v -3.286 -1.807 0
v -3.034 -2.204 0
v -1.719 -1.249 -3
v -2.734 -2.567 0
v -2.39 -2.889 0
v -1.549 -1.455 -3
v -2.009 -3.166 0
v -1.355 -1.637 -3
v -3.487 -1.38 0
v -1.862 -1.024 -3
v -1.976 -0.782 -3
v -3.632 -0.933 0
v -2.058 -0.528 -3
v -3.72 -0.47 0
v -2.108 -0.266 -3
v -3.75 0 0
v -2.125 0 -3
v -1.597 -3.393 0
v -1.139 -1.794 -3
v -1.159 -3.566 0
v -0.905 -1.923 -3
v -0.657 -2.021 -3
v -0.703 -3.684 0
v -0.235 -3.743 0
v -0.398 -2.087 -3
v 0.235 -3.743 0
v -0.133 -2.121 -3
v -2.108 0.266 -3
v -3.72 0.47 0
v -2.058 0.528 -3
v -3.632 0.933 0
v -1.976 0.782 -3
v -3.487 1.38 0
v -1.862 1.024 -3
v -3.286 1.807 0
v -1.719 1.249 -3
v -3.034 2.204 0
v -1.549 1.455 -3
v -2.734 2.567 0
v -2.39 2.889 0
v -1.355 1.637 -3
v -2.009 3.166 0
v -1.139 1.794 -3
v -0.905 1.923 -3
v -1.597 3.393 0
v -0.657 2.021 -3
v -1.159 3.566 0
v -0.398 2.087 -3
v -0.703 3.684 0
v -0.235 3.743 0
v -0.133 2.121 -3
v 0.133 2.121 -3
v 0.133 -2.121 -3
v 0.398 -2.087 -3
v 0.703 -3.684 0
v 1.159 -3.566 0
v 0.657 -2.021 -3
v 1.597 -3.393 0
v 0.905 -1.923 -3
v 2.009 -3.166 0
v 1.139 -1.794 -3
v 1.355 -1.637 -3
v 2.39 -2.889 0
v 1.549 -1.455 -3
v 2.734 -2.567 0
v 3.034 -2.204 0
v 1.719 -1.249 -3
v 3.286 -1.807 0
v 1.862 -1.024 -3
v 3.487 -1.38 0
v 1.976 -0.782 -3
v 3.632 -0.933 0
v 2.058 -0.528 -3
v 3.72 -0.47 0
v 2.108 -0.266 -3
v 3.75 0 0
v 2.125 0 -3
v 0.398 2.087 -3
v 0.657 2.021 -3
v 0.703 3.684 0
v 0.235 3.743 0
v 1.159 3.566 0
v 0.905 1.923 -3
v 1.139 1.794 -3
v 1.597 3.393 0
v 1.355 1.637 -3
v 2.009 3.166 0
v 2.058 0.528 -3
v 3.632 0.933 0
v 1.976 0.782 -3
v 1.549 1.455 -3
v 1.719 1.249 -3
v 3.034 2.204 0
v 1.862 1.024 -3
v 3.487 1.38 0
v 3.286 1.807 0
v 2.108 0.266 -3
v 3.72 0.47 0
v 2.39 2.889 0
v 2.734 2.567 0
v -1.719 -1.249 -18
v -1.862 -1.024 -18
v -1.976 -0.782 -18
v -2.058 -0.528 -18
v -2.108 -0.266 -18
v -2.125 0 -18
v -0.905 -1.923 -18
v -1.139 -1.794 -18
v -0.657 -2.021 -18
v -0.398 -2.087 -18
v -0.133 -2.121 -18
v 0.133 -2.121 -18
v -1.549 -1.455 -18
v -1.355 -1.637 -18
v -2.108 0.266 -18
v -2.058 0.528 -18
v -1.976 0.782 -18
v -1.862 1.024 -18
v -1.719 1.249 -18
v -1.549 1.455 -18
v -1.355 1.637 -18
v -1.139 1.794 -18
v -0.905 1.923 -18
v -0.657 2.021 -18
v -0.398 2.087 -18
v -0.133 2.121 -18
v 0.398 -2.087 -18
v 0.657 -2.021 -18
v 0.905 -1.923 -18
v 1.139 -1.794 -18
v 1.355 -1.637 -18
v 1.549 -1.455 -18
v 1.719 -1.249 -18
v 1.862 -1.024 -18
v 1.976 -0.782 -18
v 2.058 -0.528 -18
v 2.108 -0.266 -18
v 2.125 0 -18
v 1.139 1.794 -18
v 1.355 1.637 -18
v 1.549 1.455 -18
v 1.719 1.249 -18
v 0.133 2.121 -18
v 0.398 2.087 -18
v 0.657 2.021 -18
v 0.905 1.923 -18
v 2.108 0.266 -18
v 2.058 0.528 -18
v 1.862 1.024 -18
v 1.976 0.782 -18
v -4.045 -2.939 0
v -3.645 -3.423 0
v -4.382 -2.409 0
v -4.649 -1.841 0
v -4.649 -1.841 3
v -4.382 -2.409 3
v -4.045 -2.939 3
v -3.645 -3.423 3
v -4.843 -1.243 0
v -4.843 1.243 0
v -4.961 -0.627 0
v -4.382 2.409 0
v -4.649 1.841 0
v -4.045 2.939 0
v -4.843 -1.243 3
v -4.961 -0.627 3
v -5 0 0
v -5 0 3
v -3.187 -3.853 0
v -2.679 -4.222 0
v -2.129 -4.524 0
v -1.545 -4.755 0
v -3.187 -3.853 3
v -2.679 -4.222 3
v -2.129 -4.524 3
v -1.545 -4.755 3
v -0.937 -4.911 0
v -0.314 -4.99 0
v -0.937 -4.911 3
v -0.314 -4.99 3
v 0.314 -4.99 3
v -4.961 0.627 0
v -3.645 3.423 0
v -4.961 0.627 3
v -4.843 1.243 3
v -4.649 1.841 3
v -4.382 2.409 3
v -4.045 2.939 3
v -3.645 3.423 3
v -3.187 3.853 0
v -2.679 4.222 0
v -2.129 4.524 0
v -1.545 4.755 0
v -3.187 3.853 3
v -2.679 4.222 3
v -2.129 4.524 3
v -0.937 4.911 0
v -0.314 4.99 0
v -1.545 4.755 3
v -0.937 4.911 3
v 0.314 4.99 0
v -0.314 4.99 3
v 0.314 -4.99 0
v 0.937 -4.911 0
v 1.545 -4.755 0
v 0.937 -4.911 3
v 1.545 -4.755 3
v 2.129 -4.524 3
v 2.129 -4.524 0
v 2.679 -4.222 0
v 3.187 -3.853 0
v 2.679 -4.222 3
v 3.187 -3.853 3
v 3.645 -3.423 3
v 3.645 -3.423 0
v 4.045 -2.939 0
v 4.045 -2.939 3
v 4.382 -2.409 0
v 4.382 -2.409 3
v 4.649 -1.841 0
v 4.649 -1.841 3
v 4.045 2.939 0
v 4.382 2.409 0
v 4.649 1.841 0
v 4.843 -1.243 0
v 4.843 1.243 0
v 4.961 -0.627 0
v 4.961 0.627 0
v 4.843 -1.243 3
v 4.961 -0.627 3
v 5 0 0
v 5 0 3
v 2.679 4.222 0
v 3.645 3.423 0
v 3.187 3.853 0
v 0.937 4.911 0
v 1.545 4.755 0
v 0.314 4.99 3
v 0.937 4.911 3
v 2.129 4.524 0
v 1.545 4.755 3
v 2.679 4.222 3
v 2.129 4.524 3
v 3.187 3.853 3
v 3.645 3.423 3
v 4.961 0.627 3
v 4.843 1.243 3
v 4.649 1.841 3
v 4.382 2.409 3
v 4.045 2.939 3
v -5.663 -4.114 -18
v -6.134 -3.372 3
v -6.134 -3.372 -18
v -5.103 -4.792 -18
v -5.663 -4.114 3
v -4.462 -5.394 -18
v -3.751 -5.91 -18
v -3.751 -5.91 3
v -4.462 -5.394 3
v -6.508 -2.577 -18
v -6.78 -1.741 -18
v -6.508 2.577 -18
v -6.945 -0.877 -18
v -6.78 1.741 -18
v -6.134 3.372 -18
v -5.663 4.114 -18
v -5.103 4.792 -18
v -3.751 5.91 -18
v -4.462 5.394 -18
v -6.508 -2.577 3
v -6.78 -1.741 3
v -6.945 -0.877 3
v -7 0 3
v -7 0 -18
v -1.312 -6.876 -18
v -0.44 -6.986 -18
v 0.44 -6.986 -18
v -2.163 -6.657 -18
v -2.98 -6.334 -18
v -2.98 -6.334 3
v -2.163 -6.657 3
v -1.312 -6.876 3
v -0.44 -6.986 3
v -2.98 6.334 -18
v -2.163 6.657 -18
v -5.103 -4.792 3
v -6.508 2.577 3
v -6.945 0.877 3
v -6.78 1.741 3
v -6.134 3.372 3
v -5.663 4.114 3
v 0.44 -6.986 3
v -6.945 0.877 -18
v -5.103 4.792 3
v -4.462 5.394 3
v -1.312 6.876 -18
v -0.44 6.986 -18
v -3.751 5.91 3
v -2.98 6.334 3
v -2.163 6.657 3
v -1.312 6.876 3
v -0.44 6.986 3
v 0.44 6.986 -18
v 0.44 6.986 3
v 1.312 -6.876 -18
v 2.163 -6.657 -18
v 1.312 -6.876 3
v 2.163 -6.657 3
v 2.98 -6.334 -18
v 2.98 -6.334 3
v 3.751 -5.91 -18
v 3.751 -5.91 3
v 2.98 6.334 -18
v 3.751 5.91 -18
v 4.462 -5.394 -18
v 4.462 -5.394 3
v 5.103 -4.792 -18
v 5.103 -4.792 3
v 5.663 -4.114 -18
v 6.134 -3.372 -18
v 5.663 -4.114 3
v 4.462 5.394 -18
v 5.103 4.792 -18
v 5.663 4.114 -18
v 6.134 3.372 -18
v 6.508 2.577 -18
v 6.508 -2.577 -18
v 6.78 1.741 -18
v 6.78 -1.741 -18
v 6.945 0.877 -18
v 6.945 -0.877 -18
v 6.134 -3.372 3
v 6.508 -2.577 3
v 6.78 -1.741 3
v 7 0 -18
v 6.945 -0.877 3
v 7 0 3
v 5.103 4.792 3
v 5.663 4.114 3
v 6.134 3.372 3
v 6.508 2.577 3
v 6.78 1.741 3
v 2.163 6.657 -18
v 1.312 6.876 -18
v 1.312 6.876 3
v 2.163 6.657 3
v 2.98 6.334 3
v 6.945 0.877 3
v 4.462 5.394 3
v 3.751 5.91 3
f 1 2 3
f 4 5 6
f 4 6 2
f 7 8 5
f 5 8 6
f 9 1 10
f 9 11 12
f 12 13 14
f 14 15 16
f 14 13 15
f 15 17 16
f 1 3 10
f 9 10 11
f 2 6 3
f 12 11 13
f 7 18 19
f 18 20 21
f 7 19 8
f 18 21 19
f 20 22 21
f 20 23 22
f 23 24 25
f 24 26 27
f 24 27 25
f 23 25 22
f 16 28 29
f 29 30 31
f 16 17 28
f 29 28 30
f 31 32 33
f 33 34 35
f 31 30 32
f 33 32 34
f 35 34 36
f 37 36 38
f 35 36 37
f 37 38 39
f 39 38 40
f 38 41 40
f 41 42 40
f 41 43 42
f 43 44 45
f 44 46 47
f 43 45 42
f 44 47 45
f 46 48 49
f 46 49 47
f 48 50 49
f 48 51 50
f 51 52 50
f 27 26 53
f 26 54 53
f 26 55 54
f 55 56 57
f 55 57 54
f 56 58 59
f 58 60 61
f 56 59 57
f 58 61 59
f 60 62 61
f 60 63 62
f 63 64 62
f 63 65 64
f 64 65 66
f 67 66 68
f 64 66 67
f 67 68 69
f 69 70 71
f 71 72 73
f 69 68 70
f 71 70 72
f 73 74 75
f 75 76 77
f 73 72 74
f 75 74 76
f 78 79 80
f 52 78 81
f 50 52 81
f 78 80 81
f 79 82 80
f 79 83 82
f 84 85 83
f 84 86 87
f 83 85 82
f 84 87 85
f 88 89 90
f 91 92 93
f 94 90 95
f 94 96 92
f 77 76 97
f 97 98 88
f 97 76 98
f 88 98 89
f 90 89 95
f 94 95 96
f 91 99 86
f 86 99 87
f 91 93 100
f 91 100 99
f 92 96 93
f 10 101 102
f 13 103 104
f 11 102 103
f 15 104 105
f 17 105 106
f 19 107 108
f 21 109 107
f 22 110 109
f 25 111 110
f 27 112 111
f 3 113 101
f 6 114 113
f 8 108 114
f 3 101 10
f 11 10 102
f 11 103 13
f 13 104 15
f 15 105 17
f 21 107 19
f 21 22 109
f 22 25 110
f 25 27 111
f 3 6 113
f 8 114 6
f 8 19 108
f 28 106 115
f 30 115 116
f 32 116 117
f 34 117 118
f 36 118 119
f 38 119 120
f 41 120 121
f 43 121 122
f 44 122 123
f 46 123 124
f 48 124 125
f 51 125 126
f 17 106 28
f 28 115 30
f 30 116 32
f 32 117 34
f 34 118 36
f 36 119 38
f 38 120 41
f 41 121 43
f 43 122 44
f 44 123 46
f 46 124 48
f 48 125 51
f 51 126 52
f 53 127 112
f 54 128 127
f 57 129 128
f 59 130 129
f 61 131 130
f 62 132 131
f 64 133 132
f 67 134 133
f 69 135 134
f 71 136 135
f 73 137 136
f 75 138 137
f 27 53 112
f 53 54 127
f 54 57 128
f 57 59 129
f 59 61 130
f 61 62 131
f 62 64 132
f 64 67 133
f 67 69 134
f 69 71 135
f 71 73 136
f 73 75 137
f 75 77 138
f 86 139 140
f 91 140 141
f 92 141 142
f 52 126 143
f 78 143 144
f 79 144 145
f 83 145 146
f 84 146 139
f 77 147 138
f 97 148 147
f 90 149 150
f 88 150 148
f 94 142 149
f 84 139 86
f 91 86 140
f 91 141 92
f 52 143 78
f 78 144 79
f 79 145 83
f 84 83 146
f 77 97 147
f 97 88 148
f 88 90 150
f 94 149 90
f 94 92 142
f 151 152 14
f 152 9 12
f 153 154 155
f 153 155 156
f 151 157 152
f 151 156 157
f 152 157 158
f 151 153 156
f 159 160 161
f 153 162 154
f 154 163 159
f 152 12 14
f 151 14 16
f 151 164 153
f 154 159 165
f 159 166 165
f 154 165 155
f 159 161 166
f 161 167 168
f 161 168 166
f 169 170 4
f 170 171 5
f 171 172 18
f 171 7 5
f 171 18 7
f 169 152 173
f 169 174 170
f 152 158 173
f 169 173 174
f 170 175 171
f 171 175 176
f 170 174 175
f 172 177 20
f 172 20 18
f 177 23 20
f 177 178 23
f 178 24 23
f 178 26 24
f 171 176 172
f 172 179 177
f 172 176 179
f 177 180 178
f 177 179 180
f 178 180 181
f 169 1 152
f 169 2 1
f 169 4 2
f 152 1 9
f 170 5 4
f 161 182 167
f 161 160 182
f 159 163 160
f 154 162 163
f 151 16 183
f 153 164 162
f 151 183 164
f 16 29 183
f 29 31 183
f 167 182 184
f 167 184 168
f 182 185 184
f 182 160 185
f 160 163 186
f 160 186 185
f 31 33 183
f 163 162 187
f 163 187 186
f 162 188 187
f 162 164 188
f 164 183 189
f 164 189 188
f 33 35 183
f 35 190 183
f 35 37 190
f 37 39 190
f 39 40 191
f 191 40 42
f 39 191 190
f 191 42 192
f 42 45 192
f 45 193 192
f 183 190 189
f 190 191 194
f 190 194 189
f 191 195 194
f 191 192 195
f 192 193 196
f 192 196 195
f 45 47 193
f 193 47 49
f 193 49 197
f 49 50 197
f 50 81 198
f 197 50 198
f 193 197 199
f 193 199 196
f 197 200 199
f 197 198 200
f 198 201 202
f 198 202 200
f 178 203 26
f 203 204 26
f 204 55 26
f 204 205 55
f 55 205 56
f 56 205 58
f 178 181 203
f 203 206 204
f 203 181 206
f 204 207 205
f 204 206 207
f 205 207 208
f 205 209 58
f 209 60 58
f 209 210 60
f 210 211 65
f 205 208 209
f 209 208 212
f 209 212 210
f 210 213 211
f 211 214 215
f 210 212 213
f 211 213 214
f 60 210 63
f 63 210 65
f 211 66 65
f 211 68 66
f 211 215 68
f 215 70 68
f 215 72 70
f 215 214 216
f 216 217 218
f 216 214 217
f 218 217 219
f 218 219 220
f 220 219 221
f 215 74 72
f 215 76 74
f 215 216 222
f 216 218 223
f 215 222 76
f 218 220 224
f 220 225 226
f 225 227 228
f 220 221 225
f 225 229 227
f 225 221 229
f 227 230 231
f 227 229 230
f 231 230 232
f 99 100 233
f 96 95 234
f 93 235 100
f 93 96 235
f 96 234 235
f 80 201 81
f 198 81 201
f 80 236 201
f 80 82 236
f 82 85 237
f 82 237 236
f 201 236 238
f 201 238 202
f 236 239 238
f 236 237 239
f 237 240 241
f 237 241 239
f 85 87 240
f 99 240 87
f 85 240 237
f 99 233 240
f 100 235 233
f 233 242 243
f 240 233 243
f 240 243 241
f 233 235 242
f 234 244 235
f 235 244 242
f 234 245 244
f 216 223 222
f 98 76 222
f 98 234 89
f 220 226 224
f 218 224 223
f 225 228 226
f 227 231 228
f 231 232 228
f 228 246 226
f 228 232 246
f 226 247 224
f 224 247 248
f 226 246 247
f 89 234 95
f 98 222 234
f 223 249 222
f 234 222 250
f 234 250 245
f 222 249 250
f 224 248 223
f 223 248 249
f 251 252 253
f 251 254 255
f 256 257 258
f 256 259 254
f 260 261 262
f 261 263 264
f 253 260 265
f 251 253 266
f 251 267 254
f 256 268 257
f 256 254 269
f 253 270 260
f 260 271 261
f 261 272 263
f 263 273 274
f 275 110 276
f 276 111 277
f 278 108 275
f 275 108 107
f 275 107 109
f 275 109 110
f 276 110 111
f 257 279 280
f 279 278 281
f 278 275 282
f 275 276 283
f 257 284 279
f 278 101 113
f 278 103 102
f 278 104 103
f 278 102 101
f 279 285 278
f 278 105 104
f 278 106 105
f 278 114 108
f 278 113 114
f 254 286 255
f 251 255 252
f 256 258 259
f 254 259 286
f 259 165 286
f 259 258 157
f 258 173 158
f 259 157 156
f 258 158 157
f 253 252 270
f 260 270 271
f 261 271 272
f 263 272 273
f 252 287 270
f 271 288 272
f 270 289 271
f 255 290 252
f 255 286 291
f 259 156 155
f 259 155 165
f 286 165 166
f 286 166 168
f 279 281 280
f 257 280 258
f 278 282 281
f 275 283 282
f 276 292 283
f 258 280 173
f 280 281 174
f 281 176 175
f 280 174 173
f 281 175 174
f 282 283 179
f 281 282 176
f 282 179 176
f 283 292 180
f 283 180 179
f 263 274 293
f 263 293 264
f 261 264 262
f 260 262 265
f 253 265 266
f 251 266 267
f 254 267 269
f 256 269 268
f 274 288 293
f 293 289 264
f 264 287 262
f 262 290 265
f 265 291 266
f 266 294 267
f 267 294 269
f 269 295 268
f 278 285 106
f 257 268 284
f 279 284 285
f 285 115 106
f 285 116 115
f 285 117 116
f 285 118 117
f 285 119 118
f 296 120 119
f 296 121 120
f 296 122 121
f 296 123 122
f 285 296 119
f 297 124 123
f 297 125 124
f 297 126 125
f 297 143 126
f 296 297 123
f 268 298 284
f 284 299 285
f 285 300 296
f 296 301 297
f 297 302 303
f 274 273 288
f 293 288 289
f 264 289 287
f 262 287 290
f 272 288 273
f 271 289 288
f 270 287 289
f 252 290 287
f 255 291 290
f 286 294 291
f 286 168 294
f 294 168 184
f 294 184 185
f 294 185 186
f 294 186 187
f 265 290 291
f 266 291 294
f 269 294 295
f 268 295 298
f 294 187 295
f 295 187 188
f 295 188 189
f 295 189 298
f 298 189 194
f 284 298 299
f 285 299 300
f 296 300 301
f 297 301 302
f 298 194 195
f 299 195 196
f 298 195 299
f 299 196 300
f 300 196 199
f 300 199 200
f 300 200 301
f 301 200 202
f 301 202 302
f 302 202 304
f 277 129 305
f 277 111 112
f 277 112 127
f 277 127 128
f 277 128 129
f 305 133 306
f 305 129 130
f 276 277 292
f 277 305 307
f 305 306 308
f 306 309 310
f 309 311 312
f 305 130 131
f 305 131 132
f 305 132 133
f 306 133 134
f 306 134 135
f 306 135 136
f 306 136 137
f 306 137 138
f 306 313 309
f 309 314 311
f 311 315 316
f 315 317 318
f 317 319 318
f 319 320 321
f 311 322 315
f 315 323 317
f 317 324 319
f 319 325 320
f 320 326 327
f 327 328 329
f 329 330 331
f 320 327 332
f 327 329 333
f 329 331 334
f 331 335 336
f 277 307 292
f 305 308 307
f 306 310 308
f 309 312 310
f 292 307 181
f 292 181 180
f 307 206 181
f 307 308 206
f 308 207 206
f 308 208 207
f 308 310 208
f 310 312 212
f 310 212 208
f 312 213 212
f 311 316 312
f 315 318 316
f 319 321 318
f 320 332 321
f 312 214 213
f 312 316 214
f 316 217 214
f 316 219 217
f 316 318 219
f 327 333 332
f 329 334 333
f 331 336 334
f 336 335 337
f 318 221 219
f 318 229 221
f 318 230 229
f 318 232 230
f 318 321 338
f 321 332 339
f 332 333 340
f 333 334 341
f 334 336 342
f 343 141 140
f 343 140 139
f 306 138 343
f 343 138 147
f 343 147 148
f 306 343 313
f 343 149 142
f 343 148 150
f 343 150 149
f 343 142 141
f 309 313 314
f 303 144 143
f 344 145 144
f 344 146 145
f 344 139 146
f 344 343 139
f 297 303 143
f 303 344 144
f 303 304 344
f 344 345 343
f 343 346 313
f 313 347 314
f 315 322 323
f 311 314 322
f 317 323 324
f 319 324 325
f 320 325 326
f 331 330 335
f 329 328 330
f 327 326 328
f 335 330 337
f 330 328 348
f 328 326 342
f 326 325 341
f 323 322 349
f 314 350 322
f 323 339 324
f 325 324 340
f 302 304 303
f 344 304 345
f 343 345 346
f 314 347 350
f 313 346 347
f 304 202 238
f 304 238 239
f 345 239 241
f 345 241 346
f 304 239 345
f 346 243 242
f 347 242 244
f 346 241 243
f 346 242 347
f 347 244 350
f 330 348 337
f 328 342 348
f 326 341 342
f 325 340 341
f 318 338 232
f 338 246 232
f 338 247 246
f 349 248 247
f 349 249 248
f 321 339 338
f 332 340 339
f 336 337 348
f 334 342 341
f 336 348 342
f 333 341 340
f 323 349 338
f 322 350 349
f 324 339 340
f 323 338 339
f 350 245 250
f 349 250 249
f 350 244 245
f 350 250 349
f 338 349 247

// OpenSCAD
$fn = 50;

difference() {
	union() {
		translate(v = [0, 0, -18.0]) {
			cylinder(h = 21, r = 7.0);
		}
	}
	union() {
		translate(v = [0, 0, 0]) {
			rotate(a = [0, 0, 0]) {
				difference() {
					union() {
						translate(v = [0, 0, -21.0]) {
							cylinder(h = 21, r = 2.0);
						}
						translate(v = [0, 0, -3]) {
							cylinder(h = 3, r1 = 2.125, r2 = 3.75);
						}
						translate(v = [0, 0, -21.0]) {
							cylinder(h = 21, r = 2.125);
						}
						translate(v = [0, 0, -21.0]) {
							cylinder(h = 21, r = 2.0);
						}
					}
					union();
				}
			}
		}
		#cylinder(h = 3, r = 5.0);
	}
}
